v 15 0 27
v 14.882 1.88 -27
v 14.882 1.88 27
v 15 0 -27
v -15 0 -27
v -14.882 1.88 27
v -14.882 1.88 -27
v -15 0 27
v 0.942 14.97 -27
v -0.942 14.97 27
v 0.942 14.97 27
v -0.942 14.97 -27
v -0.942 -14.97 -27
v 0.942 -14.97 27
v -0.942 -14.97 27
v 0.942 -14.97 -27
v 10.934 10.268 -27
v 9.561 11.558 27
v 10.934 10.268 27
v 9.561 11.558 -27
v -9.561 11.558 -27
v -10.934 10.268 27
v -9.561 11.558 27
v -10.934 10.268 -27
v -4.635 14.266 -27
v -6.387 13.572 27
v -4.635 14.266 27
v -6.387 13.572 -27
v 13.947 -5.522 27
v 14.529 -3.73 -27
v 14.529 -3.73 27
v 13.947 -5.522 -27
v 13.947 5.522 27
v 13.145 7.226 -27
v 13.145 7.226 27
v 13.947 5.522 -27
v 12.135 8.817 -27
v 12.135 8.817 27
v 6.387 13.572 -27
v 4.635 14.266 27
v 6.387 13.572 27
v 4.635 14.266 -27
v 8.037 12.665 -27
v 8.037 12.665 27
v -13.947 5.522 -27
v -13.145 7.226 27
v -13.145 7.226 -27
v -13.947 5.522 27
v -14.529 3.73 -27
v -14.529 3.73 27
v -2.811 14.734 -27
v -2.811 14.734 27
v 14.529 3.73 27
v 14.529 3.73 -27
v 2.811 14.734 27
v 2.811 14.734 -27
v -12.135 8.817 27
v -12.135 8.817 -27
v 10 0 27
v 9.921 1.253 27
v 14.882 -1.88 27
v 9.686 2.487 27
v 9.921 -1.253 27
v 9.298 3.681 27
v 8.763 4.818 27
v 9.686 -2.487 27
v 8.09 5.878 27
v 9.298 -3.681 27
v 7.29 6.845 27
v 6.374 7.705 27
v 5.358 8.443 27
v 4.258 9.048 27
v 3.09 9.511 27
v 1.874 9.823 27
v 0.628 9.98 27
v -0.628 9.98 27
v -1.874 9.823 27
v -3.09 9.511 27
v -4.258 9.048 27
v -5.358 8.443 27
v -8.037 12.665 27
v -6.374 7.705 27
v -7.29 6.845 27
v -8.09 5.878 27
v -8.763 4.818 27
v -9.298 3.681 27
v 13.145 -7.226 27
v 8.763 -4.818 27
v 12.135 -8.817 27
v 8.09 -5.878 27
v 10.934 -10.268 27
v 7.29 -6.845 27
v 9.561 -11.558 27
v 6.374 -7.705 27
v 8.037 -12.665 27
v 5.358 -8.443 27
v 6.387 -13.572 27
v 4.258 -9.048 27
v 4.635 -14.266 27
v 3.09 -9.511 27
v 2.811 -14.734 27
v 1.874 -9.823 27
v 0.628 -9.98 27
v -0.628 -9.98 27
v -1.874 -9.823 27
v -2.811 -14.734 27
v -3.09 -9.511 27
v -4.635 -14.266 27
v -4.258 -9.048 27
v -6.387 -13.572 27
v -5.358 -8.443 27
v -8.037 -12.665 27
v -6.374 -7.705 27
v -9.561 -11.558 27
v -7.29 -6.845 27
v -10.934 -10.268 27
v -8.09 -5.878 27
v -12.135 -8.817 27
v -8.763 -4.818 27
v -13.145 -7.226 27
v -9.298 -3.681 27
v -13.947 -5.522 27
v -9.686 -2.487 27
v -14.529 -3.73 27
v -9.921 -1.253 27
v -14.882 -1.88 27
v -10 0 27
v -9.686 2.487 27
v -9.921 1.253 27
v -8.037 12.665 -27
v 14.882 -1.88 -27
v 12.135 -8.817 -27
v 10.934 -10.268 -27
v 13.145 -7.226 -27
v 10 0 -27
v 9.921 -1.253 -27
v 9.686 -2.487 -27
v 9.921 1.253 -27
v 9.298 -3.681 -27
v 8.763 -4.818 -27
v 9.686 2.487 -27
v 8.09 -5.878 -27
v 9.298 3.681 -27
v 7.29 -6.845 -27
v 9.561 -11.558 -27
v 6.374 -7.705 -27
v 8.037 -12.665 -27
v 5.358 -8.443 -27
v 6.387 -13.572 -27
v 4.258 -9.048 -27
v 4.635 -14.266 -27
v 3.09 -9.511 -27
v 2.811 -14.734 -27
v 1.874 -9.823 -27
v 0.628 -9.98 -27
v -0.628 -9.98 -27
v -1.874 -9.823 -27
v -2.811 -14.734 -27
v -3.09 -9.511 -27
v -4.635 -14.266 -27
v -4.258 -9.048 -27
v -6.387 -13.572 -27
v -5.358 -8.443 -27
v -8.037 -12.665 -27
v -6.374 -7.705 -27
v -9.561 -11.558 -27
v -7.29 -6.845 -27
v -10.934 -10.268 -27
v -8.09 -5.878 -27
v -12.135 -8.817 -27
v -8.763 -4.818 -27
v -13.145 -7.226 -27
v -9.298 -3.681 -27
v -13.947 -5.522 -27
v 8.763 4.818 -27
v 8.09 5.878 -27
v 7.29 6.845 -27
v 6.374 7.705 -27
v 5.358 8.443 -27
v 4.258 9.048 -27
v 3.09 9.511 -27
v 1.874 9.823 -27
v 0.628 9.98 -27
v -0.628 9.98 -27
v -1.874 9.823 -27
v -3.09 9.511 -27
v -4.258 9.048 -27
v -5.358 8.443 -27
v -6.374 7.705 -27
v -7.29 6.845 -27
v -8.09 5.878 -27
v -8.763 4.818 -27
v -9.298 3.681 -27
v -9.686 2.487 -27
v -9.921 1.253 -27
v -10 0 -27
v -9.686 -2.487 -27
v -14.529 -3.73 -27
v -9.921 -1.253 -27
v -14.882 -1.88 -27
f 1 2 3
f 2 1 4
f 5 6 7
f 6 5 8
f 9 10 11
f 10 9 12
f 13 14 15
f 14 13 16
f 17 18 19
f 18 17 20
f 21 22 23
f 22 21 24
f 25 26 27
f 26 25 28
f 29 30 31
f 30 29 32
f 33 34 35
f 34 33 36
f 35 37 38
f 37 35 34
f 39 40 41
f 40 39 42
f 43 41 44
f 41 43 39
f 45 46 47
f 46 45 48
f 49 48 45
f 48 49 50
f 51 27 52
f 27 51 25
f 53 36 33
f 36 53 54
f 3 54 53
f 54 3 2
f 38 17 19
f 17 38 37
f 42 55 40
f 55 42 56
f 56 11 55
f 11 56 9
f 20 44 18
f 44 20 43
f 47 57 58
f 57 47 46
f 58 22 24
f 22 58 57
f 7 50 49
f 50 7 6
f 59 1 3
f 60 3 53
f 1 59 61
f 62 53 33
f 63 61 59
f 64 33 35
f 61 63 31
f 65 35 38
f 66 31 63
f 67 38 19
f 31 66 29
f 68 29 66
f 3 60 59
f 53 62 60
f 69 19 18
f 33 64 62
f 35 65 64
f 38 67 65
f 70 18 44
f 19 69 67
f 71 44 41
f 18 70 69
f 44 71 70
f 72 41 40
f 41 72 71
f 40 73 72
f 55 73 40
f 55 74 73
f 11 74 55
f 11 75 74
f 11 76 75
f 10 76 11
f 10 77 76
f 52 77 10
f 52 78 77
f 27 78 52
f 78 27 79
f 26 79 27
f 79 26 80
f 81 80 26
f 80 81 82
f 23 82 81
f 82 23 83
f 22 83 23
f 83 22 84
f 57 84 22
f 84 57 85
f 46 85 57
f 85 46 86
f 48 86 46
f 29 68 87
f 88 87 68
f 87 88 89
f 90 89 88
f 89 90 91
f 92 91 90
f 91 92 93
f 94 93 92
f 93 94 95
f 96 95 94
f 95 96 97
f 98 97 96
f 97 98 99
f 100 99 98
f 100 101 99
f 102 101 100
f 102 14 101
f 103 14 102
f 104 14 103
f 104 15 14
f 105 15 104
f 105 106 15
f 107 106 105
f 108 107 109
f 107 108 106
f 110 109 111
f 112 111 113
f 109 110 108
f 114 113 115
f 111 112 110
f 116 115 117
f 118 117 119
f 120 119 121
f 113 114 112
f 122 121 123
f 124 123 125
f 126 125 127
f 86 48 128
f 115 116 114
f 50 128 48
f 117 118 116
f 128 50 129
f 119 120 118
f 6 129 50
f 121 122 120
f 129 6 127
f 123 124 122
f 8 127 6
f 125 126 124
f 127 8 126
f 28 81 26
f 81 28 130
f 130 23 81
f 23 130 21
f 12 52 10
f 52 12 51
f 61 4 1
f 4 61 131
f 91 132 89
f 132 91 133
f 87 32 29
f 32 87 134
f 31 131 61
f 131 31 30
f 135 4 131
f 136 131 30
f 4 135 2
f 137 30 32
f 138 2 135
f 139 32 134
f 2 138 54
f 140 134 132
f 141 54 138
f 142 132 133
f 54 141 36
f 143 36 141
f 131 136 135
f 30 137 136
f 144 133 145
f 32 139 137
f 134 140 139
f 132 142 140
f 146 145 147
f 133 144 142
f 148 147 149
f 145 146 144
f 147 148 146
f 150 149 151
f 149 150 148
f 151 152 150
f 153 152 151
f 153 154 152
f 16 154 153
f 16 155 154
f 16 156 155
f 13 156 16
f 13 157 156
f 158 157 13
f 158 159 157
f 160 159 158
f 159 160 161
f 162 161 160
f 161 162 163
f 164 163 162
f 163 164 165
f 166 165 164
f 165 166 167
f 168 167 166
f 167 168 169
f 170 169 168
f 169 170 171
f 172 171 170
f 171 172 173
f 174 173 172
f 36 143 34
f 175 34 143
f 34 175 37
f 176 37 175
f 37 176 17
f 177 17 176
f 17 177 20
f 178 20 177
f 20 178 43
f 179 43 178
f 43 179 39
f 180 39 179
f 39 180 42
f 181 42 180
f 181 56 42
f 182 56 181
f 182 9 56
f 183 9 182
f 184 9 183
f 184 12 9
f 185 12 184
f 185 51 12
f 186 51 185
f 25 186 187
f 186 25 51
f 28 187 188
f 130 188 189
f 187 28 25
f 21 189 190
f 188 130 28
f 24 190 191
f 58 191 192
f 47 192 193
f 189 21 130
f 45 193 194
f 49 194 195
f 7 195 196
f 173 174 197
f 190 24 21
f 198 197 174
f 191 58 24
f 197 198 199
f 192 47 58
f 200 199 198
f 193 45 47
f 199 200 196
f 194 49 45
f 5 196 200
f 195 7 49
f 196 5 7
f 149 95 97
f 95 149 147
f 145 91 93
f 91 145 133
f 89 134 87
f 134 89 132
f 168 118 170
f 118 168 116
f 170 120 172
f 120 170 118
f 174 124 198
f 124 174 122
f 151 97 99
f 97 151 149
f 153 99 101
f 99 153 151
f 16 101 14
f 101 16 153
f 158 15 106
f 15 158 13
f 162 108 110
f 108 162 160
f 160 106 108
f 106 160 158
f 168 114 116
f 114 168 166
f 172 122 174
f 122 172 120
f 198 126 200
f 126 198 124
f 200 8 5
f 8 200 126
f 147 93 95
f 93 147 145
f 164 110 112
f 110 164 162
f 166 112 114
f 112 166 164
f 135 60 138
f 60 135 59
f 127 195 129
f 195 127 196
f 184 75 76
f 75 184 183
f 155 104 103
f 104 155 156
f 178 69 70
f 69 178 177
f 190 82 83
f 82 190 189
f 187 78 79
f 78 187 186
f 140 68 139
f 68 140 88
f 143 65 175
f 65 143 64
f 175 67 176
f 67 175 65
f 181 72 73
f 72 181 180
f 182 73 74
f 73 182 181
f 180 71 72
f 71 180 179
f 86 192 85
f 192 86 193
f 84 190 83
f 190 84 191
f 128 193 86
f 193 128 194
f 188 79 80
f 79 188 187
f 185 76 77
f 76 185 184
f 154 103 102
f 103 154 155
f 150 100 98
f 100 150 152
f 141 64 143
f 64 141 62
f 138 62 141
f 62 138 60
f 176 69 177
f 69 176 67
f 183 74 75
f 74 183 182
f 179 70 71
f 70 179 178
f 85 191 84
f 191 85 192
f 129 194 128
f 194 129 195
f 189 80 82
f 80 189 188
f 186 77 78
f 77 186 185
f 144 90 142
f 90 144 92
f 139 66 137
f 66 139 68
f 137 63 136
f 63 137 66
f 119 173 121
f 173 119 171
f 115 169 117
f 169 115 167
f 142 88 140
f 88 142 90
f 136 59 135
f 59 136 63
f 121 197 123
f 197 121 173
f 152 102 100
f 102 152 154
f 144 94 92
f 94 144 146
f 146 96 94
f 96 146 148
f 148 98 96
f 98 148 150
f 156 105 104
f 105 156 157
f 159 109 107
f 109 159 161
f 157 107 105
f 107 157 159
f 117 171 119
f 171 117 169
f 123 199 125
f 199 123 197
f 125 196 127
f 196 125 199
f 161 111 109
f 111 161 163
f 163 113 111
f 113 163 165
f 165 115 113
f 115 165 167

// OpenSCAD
$fn = 50;


difference() {
	union() {
		translate(v = [0, 0, -27.0000000000]) {
			cylinder(h = 54, r = 15.0000000000);
		}
	}
	union() {
		translate(v = [0, 0, -100.0000000000]) {
			cylinder(h = 200, r = 10);
		}
	}
}
